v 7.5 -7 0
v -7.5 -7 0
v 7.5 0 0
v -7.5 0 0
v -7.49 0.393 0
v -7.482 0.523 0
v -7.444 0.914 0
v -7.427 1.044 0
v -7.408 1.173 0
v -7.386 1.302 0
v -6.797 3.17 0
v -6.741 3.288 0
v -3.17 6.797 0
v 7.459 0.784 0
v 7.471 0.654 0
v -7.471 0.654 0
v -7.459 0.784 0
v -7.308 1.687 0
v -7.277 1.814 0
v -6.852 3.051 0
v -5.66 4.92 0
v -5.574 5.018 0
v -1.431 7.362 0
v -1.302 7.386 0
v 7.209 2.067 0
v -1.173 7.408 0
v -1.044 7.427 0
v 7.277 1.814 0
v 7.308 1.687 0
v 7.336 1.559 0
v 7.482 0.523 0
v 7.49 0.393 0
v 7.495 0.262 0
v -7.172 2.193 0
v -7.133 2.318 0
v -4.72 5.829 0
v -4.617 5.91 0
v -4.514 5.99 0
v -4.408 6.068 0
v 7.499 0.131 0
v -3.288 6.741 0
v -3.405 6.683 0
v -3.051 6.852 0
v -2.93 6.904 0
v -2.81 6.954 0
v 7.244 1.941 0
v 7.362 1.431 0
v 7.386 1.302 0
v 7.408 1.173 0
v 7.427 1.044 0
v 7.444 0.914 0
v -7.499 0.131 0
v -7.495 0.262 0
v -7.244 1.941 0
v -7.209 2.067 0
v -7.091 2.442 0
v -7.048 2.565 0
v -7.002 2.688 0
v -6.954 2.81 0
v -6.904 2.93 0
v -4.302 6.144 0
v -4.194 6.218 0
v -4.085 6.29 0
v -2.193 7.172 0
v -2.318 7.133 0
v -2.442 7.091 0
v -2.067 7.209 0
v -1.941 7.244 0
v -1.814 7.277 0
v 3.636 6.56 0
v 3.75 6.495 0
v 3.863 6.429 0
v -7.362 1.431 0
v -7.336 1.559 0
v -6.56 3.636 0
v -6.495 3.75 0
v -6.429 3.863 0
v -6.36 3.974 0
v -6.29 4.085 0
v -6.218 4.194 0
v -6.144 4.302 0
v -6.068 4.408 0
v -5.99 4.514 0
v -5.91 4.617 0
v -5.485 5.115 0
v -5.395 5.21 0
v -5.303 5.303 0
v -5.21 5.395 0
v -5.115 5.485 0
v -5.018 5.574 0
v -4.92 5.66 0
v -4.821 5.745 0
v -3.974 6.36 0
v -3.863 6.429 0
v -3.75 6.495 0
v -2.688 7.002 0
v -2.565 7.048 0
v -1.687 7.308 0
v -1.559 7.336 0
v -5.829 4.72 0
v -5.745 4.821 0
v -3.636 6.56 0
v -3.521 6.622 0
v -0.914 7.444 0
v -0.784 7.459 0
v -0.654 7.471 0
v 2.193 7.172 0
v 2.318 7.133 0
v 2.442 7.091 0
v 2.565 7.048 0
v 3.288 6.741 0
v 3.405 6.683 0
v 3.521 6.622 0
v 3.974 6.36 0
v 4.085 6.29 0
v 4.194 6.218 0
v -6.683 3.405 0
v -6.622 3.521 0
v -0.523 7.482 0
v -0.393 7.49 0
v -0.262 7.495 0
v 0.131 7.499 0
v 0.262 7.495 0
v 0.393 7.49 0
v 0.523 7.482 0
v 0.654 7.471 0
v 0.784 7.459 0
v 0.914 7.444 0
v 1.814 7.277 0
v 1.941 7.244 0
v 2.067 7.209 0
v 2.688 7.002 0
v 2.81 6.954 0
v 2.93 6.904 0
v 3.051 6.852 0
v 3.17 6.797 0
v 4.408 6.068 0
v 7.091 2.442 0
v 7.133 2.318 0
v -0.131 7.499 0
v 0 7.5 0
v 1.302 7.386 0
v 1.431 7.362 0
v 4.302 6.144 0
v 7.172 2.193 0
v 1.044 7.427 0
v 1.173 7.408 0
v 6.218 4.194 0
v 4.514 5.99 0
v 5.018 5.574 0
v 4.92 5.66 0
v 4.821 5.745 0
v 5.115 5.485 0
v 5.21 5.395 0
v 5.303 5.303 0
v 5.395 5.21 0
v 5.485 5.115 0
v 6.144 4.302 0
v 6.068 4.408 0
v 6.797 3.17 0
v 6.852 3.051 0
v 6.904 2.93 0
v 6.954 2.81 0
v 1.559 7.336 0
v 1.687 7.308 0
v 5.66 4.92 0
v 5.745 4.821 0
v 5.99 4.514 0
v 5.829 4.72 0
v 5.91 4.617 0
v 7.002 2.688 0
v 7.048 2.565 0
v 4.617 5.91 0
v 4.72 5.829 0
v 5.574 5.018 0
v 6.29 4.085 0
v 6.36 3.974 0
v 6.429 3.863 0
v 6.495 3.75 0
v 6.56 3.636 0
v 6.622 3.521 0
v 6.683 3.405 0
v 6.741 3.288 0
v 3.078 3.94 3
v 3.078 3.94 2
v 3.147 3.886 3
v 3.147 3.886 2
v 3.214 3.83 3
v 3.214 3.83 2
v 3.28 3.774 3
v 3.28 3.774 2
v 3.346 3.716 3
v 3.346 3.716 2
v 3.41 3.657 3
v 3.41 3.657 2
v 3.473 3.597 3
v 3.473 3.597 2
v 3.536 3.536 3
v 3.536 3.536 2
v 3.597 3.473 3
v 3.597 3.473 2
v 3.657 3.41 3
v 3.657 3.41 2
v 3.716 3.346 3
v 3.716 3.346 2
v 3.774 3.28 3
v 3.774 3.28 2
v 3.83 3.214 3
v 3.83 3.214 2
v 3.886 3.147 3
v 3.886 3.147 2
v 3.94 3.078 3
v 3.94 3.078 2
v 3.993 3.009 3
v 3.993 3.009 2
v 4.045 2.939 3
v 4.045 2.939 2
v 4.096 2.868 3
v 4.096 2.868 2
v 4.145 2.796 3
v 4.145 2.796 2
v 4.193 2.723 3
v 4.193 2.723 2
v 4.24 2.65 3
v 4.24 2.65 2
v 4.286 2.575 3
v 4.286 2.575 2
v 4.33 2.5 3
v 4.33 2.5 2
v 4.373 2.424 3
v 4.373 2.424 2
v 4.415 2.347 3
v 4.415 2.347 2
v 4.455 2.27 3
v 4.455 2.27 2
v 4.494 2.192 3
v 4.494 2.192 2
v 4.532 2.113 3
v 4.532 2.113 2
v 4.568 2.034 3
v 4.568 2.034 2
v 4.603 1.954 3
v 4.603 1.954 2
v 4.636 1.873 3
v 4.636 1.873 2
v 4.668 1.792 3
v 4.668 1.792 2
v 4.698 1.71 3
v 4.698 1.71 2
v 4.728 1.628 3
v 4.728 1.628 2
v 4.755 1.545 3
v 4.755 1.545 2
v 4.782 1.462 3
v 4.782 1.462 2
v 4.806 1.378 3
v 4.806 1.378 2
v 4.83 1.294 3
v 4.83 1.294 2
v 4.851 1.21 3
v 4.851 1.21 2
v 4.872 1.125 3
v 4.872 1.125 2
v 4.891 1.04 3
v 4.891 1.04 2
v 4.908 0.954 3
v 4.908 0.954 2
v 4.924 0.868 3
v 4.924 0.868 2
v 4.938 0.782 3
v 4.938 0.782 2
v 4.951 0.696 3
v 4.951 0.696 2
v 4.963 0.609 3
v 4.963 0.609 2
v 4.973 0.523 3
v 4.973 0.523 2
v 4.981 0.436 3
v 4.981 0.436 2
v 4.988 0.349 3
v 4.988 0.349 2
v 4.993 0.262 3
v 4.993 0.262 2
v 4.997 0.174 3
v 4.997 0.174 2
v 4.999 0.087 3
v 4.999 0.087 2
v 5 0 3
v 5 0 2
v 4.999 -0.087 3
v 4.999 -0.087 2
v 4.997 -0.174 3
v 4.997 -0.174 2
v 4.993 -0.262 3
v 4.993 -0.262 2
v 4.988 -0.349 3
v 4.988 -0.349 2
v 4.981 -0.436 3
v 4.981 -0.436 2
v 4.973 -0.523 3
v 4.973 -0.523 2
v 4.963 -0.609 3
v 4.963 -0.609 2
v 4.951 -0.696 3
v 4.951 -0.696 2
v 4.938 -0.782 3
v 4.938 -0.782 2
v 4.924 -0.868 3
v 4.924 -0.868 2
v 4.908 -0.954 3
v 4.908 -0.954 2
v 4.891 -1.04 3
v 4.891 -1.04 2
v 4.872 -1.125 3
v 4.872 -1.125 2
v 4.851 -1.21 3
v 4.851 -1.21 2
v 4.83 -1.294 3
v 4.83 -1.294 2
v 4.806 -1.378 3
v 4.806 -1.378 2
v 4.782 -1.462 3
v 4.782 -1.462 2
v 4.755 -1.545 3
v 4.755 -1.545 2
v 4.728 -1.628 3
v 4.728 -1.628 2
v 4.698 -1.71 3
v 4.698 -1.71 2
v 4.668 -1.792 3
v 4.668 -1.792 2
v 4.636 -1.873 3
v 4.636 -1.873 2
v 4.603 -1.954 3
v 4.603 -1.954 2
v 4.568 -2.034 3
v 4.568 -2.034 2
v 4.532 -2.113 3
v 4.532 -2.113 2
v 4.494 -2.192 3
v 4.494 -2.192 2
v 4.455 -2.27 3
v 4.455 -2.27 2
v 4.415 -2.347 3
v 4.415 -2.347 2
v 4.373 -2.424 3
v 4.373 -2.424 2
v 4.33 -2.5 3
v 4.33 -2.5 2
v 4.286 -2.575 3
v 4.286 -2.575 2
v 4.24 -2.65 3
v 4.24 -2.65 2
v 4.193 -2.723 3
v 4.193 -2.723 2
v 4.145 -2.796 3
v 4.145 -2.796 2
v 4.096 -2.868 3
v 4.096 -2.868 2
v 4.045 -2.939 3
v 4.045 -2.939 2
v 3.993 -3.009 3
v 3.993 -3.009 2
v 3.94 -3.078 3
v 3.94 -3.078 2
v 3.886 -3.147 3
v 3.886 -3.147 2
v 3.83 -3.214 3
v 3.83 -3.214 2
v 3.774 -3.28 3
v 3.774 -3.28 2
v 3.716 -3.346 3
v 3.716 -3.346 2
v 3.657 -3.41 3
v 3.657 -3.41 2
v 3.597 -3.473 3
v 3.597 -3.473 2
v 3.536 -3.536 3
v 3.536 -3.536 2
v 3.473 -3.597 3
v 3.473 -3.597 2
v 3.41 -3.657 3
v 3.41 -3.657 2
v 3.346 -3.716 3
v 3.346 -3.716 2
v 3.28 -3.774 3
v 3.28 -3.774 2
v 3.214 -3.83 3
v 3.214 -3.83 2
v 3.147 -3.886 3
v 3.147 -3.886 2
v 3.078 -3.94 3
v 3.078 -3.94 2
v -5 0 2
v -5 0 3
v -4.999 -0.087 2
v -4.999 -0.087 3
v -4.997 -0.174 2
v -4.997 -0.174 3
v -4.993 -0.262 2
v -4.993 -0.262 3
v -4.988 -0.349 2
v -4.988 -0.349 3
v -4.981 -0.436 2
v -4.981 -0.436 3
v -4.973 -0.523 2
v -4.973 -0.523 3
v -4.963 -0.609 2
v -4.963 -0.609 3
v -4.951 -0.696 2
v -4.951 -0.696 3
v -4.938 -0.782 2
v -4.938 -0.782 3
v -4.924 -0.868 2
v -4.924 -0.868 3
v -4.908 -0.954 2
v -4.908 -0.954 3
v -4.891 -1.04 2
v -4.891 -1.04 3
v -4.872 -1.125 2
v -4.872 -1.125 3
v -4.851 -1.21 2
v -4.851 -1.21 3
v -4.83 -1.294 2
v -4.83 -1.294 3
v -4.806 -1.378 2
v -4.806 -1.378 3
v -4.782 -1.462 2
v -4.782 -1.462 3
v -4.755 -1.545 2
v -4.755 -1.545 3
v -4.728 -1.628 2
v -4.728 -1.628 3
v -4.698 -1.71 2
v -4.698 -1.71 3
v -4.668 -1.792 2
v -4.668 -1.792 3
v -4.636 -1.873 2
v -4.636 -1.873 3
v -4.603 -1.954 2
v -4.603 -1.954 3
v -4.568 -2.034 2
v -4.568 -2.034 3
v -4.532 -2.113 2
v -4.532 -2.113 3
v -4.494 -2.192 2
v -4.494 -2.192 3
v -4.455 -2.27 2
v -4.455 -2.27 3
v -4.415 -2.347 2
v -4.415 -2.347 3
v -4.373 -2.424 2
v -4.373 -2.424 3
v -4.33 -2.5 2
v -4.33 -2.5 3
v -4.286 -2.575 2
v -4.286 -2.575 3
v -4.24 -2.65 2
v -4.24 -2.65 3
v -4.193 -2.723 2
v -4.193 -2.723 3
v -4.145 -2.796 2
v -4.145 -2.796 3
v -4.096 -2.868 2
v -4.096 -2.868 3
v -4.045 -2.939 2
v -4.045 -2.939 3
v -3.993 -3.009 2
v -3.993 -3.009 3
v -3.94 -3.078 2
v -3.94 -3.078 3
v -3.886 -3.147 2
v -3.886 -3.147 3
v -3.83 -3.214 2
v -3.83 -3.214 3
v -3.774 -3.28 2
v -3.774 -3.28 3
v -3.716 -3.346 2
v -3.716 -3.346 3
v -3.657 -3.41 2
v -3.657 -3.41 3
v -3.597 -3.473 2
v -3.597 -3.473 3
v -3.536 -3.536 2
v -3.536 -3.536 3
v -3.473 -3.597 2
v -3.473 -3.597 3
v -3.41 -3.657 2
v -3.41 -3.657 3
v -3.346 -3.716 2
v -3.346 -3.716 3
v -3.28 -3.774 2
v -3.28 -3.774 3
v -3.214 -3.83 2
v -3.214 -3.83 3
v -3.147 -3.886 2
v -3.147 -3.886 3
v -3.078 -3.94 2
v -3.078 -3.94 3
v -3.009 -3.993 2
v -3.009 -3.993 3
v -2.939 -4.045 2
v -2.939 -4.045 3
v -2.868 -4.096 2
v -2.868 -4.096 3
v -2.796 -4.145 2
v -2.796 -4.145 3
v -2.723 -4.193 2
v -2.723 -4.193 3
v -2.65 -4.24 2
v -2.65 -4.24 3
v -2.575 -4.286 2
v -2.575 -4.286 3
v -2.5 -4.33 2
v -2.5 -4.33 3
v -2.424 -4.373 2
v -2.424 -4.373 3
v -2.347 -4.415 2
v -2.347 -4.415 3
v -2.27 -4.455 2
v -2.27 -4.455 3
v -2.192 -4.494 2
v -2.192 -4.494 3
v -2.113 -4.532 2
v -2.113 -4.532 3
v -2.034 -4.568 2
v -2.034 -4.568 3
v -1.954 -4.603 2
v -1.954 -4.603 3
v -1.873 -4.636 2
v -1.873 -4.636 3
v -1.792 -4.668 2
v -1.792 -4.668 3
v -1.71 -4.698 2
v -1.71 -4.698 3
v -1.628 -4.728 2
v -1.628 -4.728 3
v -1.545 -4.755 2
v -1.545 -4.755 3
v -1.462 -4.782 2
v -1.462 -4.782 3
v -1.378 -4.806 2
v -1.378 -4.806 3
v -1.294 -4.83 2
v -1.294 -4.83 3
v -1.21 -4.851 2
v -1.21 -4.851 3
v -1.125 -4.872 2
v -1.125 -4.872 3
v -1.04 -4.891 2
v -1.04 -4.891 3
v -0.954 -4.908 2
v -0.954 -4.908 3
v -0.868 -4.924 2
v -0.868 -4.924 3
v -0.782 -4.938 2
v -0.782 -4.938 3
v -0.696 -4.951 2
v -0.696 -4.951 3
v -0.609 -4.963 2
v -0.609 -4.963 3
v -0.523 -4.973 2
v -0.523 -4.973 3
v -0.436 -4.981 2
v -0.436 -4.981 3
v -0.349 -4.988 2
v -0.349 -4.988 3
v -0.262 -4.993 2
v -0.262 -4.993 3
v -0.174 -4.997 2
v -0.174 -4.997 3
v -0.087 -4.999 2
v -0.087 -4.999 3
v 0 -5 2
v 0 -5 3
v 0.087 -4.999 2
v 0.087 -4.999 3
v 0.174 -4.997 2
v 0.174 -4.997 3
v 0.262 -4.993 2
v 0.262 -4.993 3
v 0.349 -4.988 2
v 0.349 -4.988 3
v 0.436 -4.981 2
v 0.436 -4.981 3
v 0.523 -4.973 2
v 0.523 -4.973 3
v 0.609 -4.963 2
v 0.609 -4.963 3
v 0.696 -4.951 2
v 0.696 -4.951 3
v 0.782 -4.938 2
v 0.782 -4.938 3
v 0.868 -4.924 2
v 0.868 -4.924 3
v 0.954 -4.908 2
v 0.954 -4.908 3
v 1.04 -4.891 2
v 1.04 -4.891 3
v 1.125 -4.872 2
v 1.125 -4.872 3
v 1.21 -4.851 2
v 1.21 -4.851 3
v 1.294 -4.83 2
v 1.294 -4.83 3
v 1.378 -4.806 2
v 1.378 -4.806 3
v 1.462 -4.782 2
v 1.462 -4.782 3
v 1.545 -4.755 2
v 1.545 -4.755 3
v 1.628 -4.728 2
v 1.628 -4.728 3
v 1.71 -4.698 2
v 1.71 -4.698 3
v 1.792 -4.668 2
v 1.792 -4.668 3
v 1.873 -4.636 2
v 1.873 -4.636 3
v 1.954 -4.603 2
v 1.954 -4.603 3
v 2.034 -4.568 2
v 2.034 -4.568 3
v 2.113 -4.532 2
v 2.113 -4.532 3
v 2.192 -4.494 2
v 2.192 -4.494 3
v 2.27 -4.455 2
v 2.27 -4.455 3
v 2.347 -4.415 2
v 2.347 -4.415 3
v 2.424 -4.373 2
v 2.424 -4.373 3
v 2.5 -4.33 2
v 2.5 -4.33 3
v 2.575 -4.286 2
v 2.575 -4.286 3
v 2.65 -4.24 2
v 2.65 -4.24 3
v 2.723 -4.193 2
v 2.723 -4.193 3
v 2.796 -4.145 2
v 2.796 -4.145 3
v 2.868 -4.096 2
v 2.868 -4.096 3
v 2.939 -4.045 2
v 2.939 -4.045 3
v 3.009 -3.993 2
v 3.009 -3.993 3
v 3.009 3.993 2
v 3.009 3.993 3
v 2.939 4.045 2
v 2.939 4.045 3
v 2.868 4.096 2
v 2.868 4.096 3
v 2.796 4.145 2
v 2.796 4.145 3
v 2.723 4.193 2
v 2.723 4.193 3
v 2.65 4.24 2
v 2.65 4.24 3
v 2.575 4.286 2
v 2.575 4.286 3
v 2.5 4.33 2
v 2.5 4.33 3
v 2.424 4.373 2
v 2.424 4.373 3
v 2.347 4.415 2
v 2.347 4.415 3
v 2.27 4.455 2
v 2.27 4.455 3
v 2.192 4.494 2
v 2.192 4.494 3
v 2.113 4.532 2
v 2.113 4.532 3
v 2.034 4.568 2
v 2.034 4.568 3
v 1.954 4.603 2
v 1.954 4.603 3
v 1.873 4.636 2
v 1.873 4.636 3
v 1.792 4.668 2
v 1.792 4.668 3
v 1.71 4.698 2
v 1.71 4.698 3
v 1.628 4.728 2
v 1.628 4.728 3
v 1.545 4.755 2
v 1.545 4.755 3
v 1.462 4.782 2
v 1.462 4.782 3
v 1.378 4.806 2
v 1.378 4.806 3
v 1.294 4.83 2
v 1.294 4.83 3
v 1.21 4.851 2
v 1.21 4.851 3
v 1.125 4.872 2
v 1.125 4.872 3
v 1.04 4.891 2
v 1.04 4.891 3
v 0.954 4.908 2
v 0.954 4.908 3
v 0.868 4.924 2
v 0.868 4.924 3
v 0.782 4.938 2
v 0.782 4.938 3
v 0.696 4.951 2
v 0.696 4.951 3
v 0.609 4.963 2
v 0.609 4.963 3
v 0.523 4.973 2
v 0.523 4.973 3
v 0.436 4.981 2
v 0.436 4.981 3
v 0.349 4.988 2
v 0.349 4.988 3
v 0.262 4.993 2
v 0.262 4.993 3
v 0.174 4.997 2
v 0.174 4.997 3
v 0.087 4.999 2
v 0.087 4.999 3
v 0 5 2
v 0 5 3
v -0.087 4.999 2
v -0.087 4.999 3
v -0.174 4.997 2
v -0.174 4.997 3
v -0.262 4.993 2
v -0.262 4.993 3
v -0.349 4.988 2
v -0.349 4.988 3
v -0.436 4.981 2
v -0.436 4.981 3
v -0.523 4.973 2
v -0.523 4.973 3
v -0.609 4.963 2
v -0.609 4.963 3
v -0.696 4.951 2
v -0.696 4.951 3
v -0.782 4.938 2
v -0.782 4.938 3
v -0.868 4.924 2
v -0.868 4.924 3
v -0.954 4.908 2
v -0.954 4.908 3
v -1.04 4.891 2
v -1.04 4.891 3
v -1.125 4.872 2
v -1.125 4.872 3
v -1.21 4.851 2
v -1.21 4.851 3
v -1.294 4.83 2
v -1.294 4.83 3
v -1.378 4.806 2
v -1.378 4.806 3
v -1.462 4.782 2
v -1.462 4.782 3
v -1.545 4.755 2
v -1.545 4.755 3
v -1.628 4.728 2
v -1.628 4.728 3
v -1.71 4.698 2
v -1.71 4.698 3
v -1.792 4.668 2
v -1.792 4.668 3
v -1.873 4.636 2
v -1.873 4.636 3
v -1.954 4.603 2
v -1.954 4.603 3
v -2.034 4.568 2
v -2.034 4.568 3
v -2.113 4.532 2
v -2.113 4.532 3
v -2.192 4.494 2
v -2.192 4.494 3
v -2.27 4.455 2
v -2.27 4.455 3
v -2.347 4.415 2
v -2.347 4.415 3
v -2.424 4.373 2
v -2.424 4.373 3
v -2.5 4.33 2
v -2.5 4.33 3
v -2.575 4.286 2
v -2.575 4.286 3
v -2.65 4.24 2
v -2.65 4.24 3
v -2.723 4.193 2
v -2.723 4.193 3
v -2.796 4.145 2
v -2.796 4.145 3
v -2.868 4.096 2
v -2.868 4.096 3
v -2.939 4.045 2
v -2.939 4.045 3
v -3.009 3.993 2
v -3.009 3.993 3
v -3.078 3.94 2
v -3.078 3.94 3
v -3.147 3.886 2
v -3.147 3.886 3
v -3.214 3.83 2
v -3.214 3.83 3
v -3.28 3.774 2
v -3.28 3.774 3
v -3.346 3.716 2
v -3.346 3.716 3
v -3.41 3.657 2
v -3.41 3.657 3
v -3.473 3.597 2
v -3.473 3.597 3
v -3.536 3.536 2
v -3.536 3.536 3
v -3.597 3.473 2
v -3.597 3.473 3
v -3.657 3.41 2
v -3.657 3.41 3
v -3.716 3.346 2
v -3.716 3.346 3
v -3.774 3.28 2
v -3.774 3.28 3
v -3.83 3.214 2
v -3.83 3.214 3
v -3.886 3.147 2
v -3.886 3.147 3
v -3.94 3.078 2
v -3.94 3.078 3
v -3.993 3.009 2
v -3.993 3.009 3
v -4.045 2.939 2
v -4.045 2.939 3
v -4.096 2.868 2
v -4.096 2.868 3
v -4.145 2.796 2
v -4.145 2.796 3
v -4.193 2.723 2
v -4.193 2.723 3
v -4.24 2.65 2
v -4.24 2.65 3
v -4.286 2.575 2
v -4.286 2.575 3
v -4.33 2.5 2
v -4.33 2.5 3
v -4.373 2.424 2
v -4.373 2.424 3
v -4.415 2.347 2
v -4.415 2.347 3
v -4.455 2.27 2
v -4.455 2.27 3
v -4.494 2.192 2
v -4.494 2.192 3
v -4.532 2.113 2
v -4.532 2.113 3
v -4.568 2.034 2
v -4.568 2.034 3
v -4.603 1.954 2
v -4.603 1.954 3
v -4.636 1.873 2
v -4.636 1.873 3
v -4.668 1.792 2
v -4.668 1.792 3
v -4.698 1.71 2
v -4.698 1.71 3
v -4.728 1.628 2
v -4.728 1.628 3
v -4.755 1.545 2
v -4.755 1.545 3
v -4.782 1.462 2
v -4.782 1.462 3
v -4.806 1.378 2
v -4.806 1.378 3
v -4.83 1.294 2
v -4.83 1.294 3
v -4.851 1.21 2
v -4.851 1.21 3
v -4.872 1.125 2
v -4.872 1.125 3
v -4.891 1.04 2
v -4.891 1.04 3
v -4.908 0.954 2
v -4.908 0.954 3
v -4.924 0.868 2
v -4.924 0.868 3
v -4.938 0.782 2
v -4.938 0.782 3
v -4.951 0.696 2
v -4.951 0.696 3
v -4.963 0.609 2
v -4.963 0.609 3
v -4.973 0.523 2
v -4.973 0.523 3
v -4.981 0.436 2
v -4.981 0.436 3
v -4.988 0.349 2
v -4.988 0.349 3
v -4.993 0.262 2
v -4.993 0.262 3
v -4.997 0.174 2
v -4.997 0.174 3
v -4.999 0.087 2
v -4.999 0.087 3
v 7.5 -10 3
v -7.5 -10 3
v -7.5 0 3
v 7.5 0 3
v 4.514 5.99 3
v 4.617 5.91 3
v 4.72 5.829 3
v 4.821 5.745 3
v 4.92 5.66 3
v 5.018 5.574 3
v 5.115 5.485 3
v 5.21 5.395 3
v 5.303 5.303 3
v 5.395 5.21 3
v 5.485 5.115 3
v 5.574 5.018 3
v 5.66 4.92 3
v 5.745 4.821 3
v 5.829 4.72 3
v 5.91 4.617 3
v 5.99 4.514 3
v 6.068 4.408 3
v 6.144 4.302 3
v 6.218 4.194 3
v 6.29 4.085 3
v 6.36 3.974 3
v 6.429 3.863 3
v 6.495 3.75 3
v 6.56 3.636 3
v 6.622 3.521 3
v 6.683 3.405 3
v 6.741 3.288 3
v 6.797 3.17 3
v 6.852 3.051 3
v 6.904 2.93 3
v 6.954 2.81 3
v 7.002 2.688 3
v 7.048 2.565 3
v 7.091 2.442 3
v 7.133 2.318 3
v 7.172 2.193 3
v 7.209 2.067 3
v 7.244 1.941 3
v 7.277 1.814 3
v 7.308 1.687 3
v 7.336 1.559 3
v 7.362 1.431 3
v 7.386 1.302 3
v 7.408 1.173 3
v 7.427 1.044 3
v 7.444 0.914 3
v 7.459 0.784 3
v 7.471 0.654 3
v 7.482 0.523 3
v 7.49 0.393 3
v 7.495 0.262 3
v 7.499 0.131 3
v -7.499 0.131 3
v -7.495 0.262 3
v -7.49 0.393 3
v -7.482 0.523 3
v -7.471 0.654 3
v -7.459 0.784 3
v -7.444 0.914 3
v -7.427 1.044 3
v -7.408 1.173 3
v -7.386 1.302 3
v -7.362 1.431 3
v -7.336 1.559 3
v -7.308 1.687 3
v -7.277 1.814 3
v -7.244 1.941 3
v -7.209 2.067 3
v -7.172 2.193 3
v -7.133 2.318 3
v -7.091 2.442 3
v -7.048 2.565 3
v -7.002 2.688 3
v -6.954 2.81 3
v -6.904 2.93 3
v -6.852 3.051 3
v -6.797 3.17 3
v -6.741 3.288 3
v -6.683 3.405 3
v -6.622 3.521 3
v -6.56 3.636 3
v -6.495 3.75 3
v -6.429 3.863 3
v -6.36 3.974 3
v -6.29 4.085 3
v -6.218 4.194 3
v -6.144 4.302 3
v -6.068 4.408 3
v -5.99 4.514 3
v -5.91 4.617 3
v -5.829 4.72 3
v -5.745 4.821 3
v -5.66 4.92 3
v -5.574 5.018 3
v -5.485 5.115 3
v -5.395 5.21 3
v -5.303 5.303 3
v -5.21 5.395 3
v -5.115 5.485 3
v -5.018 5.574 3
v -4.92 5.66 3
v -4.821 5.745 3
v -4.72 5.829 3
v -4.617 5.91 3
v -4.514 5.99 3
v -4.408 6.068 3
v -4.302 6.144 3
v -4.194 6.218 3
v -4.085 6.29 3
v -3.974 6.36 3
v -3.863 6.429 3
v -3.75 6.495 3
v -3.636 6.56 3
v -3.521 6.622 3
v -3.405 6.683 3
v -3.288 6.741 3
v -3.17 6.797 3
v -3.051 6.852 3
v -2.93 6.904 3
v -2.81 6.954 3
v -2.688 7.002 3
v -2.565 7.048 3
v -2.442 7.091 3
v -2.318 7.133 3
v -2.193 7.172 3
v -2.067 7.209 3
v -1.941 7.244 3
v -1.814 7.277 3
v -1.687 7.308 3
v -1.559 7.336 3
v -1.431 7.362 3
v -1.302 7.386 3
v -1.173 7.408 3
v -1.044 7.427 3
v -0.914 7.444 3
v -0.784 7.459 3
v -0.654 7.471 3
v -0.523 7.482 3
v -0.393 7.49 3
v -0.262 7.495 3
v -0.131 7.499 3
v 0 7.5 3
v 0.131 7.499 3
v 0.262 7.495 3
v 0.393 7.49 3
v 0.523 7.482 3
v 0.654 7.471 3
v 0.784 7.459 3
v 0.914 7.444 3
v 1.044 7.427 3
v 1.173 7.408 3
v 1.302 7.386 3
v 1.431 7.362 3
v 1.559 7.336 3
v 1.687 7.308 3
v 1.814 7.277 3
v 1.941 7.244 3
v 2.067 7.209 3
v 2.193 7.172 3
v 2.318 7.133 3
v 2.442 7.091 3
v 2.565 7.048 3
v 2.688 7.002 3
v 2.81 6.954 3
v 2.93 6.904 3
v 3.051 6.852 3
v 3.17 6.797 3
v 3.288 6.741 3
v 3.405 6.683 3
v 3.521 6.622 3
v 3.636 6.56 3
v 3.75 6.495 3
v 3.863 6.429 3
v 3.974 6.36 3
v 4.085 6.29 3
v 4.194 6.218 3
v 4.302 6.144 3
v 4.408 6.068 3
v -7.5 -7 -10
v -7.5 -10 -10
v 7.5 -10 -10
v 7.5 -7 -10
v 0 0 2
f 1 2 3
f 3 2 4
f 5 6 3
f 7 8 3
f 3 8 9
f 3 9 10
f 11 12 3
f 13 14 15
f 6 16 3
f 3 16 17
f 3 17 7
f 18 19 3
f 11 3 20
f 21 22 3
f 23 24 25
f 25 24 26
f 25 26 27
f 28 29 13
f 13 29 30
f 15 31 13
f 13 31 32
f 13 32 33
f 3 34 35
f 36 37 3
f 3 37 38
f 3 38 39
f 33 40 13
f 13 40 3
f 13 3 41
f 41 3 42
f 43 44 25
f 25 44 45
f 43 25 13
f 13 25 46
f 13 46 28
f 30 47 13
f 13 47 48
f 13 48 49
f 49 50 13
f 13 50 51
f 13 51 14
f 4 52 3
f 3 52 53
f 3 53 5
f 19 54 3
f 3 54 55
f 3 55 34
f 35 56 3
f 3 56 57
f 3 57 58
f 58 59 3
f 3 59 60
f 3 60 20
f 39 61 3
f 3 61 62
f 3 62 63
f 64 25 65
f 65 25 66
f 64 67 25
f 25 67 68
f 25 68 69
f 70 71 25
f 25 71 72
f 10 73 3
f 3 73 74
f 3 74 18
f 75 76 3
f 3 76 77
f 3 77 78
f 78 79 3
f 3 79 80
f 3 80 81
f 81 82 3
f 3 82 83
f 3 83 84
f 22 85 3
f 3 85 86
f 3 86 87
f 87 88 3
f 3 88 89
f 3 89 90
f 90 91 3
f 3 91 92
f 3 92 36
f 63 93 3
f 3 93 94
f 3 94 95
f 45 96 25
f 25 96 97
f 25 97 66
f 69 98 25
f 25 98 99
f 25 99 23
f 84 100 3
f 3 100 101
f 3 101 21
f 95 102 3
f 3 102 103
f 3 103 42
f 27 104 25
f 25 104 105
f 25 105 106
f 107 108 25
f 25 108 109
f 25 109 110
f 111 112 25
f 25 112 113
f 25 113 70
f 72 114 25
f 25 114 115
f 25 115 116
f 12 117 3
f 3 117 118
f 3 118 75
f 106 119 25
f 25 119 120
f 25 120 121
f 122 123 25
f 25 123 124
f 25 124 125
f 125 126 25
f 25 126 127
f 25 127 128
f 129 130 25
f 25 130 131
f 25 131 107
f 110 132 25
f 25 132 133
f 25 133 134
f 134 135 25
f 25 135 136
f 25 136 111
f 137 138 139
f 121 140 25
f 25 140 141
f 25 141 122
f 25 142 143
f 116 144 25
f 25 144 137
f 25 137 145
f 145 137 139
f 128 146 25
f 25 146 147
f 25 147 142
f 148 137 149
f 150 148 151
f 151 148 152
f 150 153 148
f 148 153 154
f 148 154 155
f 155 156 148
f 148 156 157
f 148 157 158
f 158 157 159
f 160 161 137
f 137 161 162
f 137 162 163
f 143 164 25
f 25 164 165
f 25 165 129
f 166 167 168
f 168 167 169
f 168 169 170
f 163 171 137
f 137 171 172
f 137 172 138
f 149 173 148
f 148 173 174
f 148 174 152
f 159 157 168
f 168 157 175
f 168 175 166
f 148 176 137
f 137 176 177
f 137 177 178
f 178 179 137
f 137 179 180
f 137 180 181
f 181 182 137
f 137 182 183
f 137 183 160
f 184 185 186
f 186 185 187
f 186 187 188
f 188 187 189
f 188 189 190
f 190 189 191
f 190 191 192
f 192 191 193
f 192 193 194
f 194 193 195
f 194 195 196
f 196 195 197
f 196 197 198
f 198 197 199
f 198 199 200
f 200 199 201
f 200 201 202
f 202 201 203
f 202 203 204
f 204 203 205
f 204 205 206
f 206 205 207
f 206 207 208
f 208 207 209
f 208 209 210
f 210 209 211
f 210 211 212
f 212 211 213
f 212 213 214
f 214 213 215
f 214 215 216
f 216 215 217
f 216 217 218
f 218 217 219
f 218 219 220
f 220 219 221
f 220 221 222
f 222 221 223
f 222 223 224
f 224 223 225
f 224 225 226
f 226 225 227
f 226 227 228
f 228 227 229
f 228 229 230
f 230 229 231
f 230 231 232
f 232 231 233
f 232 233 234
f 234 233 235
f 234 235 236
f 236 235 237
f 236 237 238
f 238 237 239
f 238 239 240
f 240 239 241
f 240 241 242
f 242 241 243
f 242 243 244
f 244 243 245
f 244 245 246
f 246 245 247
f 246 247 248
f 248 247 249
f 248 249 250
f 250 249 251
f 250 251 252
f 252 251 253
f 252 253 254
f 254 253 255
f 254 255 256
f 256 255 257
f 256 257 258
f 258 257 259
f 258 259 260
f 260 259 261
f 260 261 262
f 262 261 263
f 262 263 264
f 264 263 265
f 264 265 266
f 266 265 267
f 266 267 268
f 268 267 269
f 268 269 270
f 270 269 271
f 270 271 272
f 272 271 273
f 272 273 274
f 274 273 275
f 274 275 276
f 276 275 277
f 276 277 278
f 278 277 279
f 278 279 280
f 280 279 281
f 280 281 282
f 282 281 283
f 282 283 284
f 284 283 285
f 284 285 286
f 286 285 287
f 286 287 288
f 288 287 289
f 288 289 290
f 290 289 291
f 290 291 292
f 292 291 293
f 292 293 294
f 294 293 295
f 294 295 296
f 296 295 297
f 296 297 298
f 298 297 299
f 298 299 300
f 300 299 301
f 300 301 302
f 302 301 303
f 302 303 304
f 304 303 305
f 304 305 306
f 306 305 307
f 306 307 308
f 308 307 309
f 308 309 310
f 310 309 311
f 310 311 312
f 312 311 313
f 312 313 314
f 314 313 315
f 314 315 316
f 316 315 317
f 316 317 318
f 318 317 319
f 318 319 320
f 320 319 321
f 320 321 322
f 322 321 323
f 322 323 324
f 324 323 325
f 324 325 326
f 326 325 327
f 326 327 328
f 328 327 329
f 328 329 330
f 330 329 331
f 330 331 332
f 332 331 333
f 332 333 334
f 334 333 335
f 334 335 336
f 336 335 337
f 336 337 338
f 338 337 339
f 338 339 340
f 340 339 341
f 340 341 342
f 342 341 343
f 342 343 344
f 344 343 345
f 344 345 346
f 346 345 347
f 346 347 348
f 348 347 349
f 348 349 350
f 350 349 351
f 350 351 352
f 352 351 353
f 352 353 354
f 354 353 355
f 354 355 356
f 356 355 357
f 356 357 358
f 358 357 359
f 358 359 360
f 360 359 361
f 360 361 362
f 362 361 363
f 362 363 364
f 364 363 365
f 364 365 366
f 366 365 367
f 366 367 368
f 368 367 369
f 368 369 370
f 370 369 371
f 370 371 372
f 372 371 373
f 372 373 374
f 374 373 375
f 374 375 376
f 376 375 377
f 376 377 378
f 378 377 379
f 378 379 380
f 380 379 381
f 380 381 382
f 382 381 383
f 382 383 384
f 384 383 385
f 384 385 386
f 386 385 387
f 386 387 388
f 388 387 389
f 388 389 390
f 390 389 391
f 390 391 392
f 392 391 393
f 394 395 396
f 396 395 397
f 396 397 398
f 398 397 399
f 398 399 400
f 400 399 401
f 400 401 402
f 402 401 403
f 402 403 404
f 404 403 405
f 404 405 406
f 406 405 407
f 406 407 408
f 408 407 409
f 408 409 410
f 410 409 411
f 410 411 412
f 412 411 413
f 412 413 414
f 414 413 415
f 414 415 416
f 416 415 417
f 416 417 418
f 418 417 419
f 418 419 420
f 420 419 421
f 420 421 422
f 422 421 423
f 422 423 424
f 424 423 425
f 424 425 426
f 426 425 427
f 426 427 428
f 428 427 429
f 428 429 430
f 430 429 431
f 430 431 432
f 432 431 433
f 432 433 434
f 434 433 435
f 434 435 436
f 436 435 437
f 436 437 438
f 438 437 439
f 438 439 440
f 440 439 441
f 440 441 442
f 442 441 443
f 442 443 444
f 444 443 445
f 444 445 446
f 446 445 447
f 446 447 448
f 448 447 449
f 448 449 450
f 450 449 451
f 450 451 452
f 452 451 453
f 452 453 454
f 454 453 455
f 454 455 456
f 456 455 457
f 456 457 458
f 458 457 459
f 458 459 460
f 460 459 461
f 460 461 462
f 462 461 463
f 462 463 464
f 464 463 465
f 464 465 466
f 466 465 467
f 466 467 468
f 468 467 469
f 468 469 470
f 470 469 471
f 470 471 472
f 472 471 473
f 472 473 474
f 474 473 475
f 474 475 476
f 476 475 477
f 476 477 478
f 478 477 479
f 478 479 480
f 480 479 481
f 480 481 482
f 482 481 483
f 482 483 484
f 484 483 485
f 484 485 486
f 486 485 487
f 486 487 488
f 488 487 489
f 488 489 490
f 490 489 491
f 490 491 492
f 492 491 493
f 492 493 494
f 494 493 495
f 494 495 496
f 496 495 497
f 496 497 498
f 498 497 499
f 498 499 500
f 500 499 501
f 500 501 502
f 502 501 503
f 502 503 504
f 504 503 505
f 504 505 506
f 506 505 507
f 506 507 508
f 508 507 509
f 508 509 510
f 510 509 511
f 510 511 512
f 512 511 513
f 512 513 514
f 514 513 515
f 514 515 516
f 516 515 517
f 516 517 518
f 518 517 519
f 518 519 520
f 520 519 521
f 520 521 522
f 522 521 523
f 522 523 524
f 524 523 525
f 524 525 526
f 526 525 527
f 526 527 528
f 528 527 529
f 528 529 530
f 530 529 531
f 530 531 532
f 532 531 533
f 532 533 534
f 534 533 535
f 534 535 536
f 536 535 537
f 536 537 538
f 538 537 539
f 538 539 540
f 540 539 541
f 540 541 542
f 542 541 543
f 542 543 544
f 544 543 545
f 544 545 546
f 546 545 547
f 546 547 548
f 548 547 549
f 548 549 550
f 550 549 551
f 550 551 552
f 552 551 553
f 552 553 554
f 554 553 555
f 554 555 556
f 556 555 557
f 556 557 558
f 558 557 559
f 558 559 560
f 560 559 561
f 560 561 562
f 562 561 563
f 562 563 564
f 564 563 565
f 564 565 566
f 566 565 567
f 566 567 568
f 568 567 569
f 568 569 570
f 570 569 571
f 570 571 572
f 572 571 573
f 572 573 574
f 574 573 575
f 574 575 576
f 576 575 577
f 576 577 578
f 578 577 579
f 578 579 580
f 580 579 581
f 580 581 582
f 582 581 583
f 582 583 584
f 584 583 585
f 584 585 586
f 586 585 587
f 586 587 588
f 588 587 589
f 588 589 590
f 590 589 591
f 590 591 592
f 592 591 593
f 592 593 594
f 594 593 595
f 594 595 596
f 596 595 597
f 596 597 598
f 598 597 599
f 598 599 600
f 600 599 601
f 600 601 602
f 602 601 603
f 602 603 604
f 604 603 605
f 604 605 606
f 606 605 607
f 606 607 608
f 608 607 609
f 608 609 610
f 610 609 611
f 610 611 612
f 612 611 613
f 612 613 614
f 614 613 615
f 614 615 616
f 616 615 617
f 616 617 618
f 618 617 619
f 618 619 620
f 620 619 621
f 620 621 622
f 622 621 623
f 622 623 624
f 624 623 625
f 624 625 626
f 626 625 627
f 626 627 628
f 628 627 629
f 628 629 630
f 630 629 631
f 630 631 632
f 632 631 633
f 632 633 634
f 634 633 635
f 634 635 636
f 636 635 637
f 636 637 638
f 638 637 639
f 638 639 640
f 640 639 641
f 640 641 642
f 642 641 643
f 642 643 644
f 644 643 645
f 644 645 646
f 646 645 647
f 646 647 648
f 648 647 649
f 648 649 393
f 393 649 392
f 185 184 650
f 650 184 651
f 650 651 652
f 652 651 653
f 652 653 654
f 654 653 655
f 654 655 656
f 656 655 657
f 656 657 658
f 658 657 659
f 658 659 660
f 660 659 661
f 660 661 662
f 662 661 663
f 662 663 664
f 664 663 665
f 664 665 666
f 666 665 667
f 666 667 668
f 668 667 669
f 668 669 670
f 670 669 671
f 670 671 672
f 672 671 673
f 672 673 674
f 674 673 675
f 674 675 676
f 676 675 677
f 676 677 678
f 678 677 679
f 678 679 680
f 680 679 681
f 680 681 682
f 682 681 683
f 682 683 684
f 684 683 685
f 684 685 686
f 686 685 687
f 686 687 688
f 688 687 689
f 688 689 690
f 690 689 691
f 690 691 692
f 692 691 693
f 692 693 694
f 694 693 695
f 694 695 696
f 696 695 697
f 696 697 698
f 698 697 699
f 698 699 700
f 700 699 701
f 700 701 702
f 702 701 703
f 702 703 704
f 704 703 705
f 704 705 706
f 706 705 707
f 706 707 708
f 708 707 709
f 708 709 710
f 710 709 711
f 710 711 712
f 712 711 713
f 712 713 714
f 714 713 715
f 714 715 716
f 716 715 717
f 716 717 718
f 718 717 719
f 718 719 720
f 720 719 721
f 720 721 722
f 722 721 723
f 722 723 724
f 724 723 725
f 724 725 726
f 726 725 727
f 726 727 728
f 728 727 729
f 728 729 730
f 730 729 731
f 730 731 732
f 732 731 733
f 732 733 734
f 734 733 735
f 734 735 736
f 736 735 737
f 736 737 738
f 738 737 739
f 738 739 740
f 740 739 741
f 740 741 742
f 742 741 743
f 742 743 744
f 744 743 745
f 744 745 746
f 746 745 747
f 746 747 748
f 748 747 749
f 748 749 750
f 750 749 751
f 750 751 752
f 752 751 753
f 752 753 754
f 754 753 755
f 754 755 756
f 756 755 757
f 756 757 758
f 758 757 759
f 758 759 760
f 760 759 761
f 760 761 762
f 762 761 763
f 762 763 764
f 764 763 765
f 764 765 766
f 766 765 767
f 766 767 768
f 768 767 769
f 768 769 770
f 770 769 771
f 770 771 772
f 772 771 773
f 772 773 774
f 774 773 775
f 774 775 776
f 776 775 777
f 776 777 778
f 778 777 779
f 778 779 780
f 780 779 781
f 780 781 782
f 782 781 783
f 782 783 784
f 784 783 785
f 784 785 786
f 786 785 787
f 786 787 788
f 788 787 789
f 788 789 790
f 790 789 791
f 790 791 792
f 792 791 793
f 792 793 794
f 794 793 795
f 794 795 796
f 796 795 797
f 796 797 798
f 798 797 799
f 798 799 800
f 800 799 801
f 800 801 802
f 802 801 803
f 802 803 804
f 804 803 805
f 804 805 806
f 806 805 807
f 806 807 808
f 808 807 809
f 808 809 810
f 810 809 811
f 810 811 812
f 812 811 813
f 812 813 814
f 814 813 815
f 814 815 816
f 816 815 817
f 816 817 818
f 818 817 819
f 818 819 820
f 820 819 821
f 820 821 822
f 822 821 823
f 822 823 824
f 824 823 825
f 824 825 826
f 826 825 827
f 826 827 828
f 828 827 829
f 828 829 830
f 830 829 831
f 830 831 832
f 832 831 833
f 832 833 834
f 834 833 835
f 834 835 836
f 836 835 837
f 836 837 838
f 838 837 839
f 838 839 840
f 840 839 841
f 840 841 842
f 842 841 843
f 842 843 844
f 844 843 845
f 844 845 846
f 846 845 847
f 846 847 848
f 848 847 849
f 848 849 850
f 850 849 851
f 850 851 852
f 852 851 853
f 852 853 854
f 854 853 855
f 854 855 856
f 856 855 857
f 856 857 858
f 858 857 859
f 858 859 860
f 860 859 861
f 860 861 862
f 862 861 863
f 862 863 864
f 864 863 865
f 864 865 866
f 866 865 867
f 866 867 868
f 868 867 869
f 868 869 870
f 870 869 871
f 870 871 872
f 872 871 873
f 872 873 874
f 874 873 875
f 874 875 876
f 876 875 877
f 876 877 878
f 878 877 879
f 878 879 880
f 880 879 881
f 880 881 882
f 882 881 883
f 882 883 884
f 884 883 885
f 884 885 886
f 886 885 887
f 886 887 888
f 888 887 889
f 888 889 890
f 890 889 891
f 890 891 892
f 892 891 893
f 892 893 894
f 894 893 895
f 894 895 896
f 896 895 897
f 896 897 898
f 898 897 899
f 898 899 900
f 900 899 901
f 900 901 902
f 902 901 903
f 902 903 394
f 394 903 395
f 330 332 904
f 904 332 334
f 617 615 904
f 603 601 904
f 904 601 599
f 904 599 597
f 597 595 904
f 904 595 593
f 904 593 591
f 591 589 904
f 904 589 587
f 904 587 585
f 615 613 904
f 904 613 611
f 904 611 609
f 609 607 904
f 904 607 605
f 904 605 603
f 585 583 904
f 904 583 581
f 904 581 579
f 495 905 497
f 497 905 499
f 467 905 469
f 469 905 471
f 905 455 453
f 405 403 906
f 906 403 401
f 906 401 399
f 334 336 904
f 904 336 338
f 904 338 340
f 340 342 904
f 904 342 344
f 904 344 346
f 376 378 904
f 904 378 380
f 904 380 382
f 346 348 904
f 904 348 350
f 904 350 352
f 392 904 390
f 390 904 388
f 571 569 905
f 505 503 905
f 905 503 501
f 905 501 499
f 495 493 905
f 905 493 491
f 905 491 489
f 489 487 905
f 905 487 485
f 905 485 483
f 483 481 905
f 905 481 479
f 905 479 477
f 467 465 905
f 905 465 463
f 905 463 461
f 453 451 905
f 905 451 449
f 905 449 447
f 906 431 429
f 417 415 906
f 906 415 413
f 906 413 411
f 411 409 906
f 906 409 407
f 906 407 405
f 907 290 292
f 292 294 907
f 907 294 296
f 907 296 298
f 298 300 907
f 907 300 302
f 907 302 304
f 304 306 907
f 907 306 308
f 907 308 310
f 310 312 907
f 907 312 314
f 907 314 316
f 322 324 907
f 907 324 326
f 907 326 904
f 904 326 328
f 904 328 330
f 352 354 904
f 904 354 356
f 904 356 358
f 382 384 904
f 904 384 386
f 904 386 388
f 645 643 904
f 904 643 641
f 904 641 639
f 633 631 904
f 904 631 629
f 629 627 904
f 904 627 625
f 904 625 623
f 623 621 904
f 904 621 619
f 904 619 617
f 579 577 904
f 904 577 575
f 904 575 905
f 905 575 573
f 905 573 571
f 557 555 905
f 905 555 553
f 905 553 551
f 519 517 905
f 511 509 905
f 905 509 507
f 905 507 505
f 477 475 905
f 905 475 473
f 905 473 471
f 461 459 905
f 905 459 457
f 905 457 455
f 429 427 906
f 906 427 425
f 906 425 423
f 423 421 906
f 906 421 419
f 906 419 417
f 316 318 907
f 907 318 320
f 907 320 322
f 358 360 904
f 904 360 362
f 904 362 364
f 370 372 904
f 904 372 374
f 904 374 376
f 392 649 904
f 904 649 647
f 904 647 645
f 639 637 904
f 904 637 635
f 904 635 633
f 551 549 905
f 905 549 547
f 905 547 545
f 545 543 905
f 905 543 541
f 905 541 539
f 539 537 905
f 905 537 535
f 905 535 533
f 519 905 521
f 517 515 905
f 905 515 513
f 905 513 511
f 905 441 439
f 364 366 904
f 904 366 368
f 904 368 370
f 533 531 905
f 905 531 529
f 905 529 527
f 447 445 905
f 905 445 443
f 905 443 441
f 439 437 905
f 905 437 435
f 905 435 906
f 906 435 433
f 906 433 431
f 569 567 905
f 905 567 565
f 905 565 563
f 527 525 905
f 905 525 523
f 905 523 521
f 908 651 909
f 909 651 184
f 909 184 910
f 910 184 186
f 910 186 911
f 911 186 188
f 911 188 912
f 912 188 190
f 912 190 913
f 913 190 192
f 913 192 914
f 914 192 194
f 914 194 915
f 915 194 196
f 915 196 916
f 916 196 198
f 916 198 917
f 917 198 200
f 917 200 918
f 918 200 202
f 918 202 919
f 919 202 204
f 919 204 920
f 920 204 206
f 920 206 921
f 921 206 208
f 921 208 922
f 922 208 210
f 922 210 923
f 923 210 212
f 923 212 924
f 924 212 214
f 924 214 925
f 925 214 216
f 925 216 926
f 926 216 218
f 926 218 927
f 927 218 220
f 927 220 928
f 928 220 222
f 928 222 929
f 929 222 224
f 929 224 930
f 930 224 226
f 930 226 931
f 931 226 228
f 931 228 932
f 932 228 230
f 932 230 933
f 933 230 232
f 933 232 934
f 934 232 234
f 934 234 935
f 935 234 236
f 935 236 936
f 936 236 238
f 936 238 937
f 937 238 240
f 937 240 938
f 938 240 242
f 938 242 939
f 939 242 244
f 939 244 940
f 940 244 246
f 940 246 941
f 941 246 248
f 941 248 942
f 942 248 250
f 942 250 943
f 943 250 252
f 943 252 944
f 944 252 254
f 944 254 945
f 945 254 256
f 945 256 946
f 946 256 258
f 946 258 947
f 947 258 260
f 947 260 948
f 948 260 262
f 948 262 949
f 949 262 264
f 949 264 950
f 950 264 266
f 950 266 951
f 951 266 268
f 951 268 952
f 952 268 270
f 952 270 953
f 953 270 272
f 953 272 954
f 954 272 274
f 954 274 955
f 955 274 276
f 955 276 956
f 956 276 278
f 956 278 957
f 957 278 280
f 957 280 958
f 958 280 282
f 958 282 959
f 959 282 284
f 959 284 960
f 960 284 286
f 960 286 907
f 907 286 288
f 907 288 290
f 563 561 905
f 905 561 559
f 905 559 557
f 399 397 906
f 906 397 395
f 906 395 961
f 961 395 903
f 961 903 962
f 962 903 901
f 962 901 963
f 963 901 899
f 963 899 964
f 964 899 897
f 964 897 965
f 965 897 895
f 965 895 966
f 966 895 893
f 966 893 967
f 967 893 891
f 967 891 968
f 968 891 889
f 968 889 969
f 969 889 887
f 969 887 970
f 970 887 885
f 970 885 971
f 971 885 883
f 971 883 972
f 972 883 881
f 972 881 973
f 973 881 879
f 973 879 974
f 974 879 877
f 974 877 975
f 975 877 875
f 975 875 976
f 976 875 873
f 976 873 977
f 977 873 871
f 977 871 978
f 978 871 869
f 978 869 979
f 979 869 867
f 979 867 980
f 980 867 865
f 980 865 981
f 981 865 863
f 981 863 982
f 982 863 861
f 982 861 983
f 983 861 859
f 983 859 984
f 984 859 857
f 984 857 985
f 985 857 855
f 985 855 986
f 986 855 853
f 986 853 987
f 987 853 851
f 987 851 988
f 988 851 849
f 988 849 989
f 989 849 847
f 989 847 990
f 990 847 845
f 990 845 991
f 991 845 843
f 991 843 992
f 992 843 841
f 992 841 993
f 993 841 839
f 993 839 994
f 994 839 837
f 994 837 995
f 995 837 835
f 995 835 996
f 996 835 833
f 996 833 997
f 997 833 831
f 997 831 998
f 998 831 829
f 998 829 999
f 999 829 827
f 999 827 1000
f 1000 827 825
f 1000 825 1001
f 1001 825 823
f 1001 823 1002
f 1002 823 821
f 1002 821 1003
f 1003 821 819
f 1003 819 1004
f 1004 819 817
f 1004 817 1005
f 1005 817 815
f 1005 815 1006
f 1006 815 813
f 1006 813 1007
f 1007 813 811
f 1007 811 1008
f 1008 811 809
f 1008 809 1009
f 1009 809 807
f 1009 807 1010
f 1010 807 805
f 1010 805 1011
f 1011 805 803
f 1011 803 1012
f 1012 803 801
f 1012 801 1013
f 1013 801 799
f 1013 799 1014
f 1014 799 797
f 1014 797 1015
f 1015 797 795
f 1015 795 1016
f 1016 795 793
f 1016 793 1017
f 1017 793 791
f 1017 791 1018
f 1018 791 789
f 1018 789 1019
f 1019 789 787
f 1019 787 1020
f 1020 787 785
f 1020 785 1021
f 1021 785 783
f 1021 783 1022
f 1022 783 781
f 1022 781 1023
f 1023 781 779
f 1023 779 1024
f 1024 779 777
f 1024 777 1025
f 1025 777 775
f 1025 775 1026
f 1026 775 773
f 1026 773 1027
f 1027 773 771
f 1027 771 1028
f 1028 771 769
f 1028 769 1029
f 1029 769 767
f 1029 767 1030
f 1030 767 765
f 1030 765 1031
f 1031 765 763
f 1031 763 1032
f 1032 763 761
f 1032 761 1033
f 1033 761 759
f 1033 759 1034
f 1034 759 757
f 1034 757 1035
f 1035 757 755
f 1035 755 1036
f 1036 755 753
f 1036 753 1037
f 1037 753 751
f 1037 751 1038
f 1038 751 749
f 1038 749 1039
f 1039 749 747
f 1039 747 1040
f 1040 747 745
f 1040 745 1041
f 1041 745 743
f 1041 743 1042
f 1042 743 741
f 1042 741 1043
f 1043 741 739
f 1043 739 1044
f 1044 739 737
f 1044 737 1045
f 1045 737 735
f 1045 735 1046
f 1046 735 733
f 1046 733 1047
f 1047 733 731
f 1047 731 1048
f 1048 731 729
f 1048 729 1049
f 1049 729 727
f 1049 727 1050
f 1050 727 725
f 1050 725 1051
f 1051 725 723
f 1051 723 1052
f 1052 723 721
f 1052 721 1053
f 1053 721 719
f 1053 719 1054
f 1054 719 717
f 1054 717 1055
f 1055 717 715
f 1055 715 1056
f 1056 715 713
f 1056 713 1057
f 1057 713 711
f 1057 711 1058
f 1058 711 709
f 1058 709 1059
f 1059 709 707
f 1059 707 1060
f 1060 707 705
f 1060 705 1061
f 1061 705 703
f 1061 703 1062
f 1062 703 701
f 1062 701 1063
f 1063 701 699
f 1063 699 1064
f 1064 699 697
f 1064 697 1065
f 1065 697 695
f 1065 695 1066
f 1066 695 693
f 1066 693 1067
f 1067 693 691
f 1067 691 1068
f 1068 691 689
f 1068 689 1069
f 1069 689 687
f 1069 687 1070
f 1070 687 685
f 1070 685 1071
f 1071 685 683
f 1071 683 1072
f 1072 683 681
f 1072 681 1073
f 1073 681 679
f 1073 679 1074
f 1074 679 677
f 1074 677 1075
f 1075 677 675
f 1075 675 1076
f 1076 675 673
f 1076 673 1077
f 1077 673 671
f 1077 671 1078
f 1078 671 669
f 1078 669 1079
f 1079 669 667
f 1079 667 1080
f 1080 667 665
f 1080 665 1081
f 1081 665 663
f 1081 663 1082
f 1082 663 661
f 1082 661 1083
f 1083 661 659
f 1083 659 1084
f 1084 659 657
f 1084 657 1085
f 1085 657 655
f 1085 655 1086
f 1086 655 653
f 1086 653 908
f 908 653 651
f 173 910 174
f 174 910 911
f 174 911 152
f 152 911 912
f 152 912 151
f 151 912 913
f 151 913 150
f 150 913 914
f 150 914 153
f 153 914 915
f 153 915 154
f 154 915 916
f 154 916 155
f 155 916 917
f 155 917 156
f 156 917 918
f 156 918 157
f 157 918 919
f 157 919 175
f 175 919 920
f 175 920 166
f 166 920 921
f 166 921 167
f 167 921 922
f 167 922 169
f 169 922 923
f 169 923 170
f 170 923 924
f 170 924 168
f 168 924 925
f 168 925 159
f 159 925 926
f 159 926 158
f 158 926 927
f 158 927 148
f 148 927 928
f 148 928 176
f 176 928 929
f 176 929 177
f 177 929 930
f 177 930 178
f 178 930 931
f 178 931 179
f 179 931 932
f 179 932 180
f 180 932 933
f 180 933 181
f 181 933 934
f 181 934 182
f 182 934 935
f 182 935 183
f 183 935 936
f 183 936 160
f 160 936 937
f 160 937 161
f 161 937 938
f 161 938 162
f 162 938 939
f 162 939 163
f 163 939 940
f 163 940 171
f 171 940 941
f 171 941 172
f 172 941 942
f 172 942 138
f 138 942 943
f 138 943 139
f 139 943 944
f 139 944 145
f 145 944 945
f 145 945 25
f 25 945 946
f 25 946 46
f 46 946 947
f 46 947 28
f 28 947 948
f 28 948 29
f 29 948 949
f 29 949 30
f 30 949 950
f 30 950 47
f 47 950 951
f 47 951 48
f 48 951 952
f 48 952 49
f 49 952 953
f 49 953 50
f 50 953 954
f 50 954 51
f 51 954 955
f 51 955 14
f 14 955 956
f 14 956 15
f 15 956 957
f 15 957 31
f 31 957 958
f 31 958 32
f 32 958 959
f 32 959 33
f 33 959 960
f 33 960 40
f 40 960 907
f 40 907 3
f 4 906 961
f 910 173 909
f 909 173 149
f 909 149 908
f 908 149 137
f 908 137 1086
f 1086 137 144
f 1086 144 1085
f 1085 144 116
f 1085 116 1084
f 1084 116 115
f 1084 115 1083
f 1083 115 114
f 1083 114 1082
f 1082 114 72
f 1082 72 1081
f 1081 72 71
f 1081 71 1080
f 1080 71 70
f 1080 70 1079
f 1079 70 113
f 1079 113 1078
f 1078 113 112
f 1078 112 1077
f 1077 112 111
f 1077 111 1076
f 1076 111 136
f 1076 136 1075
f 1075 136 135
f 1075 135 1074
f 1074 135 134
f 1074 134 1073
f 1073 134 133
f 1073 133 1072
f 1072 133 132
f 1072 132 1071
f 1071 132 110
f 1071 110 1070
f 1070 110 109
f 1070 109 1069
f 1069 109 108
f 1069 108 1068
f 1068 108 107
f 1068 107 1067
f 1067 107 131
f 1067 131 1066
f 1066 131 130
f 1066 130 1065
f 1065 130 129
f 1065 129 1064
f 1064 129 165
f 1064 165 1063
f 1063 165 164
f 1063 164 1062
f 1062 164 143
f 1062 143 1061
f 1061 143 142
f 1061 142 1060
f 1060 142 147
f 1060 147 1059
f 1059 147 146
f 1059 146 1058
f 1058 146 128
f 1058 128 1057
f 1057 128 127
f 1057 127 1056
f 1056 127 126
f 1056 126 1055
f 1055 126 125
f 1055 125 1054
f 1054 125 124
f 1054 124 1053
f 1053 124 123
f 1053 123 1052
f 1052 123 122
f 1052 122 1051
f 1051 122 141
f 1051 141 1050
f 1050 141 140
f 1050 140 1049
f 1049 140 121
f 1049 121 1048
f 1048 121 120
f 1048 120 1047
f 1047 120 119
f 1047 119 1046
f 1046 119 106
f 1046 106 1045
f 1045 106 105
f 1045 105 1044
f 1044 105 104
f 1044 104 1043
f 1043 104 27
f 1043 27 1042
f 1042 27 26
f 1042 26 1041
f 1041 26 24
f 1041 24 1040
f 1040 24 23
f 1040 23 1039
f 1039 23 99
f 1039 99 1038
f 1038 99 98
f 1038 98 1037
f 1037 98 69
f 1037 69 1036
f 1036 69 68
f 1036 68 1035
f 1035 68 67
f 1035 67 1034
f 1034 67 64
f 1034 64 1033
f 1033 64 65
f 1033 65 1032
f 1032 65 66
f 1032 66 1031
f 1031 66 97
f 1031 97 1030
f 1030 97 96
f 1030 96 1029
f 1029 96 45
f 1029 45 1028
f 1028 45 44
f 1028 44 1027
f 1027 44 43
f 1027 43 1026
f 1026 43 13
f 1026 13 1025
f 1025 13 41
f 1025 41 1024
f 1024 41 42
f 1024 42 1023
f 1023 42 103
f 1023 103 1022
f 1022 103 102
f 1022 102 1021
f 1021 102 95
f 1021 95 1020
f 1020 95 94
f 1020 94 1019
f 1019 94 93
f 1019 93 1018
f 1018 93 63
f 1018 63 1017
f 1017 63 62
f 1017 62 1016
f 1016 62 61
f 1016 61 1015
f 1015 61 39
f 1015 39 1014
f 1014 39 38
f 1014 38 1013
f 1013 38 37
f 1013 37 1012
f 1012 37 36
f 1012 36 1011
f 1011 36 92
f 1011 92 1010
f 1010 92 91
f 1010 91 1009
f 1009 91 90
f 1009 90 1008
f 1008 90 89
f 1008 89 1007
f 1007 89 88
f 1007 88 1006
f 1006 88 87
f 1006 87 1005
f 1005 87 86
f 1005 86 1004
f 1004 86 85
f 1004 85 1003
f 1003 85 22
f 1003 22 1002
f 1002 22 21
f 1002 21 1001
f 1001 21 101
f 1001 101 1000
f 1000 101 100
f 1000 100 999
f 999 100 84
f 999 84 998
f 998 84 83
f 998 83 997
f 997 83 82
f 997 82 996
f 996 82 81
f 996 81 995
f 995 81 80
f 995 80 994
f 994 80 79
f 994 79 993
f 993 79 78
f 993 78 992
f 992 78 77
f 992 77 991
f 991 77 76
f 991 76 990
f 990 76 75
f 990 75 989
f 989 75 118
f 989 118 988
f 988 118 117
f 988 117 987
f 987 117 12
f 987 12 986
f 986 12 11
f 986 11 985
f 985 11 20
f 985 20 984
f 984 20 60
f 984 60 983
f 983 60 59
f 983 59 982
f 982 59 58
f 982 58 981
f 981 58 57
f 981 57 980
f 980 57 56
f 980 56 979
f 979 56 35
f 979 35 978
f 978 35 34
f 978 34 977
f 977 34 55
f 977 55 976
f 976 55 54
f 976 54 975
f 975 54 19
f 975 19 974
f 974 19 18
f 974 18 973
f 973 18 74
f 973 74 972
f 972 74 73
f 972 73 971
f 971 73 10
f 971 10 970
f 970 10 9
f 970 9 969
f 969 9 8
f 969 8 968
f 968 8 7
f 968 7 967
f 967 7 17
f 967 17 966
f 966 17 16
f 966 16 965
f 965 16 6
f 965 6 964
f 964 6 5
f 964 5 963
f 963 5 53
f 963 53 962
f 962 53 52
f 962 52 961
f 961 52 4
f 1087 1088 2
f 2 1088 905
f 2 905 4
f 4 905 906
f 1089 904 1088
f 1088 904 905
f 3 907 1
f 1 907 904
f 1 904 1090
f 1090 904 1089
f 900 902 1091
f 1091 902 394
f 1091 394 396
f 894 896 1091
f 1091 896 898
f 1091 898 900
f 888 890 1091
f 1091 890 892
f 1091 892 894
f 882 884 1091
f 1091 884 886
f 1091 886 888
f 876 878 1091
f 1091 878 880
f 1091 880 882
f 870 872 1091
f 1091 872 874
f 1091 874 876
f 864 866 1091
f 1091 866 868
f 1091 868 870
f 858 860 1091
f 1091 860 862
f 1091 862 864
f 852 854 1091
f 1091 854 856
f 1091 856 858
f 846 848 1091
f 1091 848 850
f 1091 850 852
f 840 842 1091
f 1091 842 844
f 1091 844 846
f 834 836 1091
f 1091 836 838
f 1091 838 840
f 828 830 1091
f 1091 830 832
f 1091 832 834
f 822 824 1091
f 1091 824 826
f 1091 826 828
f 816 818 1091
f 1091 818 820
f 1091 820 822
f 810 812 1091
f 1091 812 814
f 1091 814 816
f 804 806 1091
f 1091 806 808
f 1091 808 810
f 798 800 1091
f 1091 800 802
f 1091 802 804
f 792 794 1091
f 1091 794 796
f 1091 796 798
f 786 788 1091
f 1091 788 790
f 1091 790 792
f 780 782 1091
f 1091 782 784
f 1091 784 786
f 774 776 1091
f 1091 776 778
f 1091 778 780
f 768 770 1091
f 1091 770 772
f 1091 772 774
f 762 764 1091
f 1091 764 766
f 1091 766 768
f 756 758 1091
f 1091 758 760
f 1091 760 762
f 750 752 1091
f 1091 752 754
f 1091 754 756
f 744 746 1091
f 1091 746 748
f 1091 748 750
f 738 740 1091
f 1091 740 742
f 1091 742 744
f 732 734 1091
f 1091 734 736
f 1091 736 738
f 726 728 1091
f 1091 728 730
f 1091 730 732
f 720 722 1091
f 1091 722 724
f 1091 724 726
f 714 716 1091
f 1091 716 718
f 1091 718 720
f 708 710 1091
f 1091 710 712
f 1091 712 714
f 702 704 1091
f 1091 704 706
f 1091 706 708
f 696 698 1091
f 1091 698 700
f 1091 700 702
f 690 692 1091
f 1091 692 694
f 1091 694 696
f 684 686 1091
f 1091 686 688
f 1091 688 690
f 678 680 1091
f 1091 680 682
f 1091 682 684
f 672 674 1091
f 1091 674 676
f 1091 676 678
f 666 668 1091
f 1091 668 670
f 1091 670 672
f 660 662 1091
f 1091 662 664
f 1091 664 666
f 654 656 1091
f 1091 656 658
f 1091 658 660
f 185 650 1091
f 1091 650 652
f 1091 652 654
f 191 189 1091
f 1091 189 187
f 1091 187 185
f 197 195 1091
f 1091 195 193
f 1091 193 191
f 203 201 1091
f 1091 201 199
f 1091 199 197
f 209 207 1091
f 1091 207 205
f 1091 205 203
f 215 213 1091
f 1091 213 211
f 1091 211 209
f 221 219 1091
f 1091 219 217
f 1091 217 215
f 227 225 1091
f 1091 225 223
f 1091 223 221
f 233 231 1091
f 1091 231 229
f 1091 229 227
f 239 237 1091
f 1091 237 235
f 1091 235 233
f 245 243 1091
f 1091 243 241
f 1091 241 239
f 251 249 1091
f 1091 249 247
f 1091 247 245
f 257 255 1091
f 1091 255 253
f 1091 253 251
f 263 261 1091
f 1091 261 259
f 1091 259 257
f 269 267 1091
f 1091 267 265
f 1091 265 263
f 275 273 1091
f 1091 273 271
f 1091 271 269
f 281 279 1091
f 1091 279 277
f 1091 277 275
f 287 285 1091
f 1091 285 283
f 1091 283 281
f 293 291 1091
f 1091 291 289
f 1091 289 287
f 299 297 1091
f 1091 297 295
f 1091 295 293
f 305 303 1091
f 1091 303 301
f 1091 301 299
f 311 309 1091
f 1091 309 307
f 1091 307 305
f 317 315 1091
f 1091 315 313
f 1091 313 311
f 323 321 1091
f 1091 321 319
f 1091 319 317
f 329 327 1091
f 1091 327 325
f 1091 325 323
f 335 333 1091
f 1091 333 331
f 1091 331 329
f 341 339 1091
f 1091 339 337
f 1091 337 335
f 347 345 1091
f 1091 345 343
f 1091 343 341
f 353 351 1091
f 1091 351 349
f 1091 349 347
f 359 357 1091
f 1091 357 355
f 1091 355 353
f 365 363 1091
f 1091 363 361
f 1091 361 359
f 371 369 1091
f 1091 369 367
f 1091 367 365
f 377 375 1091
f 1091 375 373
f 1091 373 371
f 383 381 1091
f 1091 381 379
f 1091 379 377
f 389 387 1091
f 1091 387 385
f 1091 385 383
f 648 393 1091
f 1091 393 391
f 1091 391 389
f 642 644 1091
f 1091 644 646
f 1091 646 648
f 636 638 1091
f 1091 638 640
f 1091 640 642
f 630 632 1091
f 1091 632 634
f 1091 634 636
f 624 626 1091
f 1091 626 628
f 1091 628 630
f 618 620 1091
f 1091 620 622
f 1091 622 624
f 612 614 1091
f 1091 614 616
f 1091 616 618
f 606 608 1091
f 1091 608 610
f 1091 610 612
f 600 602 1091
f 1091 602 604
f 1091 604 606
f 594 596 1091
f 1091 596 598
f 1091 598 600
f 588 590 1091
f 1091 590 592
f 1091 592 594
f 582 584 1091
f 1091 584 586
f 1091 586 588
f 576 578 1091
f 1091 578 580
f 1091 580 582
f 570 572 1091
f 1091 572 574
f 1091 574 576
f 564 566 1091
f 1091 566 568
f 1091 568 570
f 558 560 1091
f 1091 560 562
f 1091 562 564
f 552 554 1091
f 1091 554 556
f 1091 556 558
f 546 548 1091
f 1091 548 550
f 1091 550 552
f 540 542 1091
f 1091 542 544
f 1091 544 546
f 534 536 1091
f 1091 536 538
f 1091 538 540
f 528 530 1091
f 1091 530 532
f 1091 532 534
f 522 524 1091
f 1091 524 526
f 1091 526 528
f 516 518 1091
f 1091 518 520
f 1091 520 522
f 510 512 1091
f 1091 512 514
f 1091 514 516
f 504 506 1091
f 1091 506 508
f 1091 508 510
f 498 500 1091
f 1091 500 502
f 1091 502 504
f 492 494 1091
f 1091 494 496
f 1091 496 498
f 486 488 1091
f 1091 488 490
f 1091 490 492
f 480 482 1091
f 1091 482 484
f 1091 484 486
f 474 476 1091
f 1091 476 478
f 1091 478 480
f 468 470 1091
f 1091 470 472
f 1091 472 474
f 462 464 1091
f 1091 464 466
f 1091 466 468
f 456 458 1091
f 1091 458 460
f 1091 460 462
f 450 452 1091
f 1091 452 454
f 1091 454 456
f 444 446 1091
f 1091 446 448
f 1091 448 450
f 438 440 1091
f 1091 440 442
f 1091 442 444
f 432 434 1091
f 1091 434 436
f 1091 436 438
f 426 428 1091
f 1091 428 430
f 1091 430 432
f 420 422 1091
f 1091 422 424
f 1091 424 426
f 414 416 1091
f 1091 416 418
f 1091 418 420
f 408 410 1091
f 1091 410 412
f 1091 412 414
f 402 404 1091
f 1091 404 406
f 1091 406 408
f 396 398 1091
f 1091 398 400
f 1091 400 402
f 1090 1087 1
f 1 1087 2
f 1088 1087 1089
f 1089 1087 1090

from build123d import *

# Parameters (mm, degrees)
SKETCH6_R           = 5
BOSS_EXTRUDE5_DEPTH = 3
SKETCH7_R           = 5
BOSS_EXTRUDE6_DEPTH = 2
SKETCH8_W           = 15
SKETCH8_H           = 3
BOSS_EXTRUDE7_DEPTH = 10


with BuildPart() as part:
    # Sketch6 → Boss-Extrude5 (new body)
    with BuildSketch(Plane.XY):
        with BuildLine():
            Line((-7.5, 0), (-7.5, -10))
            Line((-7.5, -10), (7.5, -10))
            Line((7.5, -10), (7.5, 0))
            ThreePointArc((7.5, 0), (0, 7.5), (-7.5, 0))
        make_face()
        Circle(SKETCH6_R, mode=Mode.SUBTRACT)
    extrude(amount=BOSS_EXTRUDE5_DEPTH)

    # Sketch7 → Boss-Extrude6 (add)
    with BuildSketch(Plane(origin=(0, 0, 0), x_dir=(-1, 0, 0), z_dir=(0, 0, -1))):
        Circle(SKETCH7_R)
    extrude(amount=-BOSS_EXTRUDE6_DEPTH)

    # Sketch8 → Boss-Extrude7 (add)
    with BuildSketch(Plane(origin=(0, 0, 0), x_dir=(-1, 0, 0), z_dir=(0, 0, -1))):
        with Locations((0, -8.5)):
            Rectangle(SKETCH8_W, SKETCH8_H)
    extrude(amount=BOSS_EXTRUDE7_DEPTH)


solid = part.part
